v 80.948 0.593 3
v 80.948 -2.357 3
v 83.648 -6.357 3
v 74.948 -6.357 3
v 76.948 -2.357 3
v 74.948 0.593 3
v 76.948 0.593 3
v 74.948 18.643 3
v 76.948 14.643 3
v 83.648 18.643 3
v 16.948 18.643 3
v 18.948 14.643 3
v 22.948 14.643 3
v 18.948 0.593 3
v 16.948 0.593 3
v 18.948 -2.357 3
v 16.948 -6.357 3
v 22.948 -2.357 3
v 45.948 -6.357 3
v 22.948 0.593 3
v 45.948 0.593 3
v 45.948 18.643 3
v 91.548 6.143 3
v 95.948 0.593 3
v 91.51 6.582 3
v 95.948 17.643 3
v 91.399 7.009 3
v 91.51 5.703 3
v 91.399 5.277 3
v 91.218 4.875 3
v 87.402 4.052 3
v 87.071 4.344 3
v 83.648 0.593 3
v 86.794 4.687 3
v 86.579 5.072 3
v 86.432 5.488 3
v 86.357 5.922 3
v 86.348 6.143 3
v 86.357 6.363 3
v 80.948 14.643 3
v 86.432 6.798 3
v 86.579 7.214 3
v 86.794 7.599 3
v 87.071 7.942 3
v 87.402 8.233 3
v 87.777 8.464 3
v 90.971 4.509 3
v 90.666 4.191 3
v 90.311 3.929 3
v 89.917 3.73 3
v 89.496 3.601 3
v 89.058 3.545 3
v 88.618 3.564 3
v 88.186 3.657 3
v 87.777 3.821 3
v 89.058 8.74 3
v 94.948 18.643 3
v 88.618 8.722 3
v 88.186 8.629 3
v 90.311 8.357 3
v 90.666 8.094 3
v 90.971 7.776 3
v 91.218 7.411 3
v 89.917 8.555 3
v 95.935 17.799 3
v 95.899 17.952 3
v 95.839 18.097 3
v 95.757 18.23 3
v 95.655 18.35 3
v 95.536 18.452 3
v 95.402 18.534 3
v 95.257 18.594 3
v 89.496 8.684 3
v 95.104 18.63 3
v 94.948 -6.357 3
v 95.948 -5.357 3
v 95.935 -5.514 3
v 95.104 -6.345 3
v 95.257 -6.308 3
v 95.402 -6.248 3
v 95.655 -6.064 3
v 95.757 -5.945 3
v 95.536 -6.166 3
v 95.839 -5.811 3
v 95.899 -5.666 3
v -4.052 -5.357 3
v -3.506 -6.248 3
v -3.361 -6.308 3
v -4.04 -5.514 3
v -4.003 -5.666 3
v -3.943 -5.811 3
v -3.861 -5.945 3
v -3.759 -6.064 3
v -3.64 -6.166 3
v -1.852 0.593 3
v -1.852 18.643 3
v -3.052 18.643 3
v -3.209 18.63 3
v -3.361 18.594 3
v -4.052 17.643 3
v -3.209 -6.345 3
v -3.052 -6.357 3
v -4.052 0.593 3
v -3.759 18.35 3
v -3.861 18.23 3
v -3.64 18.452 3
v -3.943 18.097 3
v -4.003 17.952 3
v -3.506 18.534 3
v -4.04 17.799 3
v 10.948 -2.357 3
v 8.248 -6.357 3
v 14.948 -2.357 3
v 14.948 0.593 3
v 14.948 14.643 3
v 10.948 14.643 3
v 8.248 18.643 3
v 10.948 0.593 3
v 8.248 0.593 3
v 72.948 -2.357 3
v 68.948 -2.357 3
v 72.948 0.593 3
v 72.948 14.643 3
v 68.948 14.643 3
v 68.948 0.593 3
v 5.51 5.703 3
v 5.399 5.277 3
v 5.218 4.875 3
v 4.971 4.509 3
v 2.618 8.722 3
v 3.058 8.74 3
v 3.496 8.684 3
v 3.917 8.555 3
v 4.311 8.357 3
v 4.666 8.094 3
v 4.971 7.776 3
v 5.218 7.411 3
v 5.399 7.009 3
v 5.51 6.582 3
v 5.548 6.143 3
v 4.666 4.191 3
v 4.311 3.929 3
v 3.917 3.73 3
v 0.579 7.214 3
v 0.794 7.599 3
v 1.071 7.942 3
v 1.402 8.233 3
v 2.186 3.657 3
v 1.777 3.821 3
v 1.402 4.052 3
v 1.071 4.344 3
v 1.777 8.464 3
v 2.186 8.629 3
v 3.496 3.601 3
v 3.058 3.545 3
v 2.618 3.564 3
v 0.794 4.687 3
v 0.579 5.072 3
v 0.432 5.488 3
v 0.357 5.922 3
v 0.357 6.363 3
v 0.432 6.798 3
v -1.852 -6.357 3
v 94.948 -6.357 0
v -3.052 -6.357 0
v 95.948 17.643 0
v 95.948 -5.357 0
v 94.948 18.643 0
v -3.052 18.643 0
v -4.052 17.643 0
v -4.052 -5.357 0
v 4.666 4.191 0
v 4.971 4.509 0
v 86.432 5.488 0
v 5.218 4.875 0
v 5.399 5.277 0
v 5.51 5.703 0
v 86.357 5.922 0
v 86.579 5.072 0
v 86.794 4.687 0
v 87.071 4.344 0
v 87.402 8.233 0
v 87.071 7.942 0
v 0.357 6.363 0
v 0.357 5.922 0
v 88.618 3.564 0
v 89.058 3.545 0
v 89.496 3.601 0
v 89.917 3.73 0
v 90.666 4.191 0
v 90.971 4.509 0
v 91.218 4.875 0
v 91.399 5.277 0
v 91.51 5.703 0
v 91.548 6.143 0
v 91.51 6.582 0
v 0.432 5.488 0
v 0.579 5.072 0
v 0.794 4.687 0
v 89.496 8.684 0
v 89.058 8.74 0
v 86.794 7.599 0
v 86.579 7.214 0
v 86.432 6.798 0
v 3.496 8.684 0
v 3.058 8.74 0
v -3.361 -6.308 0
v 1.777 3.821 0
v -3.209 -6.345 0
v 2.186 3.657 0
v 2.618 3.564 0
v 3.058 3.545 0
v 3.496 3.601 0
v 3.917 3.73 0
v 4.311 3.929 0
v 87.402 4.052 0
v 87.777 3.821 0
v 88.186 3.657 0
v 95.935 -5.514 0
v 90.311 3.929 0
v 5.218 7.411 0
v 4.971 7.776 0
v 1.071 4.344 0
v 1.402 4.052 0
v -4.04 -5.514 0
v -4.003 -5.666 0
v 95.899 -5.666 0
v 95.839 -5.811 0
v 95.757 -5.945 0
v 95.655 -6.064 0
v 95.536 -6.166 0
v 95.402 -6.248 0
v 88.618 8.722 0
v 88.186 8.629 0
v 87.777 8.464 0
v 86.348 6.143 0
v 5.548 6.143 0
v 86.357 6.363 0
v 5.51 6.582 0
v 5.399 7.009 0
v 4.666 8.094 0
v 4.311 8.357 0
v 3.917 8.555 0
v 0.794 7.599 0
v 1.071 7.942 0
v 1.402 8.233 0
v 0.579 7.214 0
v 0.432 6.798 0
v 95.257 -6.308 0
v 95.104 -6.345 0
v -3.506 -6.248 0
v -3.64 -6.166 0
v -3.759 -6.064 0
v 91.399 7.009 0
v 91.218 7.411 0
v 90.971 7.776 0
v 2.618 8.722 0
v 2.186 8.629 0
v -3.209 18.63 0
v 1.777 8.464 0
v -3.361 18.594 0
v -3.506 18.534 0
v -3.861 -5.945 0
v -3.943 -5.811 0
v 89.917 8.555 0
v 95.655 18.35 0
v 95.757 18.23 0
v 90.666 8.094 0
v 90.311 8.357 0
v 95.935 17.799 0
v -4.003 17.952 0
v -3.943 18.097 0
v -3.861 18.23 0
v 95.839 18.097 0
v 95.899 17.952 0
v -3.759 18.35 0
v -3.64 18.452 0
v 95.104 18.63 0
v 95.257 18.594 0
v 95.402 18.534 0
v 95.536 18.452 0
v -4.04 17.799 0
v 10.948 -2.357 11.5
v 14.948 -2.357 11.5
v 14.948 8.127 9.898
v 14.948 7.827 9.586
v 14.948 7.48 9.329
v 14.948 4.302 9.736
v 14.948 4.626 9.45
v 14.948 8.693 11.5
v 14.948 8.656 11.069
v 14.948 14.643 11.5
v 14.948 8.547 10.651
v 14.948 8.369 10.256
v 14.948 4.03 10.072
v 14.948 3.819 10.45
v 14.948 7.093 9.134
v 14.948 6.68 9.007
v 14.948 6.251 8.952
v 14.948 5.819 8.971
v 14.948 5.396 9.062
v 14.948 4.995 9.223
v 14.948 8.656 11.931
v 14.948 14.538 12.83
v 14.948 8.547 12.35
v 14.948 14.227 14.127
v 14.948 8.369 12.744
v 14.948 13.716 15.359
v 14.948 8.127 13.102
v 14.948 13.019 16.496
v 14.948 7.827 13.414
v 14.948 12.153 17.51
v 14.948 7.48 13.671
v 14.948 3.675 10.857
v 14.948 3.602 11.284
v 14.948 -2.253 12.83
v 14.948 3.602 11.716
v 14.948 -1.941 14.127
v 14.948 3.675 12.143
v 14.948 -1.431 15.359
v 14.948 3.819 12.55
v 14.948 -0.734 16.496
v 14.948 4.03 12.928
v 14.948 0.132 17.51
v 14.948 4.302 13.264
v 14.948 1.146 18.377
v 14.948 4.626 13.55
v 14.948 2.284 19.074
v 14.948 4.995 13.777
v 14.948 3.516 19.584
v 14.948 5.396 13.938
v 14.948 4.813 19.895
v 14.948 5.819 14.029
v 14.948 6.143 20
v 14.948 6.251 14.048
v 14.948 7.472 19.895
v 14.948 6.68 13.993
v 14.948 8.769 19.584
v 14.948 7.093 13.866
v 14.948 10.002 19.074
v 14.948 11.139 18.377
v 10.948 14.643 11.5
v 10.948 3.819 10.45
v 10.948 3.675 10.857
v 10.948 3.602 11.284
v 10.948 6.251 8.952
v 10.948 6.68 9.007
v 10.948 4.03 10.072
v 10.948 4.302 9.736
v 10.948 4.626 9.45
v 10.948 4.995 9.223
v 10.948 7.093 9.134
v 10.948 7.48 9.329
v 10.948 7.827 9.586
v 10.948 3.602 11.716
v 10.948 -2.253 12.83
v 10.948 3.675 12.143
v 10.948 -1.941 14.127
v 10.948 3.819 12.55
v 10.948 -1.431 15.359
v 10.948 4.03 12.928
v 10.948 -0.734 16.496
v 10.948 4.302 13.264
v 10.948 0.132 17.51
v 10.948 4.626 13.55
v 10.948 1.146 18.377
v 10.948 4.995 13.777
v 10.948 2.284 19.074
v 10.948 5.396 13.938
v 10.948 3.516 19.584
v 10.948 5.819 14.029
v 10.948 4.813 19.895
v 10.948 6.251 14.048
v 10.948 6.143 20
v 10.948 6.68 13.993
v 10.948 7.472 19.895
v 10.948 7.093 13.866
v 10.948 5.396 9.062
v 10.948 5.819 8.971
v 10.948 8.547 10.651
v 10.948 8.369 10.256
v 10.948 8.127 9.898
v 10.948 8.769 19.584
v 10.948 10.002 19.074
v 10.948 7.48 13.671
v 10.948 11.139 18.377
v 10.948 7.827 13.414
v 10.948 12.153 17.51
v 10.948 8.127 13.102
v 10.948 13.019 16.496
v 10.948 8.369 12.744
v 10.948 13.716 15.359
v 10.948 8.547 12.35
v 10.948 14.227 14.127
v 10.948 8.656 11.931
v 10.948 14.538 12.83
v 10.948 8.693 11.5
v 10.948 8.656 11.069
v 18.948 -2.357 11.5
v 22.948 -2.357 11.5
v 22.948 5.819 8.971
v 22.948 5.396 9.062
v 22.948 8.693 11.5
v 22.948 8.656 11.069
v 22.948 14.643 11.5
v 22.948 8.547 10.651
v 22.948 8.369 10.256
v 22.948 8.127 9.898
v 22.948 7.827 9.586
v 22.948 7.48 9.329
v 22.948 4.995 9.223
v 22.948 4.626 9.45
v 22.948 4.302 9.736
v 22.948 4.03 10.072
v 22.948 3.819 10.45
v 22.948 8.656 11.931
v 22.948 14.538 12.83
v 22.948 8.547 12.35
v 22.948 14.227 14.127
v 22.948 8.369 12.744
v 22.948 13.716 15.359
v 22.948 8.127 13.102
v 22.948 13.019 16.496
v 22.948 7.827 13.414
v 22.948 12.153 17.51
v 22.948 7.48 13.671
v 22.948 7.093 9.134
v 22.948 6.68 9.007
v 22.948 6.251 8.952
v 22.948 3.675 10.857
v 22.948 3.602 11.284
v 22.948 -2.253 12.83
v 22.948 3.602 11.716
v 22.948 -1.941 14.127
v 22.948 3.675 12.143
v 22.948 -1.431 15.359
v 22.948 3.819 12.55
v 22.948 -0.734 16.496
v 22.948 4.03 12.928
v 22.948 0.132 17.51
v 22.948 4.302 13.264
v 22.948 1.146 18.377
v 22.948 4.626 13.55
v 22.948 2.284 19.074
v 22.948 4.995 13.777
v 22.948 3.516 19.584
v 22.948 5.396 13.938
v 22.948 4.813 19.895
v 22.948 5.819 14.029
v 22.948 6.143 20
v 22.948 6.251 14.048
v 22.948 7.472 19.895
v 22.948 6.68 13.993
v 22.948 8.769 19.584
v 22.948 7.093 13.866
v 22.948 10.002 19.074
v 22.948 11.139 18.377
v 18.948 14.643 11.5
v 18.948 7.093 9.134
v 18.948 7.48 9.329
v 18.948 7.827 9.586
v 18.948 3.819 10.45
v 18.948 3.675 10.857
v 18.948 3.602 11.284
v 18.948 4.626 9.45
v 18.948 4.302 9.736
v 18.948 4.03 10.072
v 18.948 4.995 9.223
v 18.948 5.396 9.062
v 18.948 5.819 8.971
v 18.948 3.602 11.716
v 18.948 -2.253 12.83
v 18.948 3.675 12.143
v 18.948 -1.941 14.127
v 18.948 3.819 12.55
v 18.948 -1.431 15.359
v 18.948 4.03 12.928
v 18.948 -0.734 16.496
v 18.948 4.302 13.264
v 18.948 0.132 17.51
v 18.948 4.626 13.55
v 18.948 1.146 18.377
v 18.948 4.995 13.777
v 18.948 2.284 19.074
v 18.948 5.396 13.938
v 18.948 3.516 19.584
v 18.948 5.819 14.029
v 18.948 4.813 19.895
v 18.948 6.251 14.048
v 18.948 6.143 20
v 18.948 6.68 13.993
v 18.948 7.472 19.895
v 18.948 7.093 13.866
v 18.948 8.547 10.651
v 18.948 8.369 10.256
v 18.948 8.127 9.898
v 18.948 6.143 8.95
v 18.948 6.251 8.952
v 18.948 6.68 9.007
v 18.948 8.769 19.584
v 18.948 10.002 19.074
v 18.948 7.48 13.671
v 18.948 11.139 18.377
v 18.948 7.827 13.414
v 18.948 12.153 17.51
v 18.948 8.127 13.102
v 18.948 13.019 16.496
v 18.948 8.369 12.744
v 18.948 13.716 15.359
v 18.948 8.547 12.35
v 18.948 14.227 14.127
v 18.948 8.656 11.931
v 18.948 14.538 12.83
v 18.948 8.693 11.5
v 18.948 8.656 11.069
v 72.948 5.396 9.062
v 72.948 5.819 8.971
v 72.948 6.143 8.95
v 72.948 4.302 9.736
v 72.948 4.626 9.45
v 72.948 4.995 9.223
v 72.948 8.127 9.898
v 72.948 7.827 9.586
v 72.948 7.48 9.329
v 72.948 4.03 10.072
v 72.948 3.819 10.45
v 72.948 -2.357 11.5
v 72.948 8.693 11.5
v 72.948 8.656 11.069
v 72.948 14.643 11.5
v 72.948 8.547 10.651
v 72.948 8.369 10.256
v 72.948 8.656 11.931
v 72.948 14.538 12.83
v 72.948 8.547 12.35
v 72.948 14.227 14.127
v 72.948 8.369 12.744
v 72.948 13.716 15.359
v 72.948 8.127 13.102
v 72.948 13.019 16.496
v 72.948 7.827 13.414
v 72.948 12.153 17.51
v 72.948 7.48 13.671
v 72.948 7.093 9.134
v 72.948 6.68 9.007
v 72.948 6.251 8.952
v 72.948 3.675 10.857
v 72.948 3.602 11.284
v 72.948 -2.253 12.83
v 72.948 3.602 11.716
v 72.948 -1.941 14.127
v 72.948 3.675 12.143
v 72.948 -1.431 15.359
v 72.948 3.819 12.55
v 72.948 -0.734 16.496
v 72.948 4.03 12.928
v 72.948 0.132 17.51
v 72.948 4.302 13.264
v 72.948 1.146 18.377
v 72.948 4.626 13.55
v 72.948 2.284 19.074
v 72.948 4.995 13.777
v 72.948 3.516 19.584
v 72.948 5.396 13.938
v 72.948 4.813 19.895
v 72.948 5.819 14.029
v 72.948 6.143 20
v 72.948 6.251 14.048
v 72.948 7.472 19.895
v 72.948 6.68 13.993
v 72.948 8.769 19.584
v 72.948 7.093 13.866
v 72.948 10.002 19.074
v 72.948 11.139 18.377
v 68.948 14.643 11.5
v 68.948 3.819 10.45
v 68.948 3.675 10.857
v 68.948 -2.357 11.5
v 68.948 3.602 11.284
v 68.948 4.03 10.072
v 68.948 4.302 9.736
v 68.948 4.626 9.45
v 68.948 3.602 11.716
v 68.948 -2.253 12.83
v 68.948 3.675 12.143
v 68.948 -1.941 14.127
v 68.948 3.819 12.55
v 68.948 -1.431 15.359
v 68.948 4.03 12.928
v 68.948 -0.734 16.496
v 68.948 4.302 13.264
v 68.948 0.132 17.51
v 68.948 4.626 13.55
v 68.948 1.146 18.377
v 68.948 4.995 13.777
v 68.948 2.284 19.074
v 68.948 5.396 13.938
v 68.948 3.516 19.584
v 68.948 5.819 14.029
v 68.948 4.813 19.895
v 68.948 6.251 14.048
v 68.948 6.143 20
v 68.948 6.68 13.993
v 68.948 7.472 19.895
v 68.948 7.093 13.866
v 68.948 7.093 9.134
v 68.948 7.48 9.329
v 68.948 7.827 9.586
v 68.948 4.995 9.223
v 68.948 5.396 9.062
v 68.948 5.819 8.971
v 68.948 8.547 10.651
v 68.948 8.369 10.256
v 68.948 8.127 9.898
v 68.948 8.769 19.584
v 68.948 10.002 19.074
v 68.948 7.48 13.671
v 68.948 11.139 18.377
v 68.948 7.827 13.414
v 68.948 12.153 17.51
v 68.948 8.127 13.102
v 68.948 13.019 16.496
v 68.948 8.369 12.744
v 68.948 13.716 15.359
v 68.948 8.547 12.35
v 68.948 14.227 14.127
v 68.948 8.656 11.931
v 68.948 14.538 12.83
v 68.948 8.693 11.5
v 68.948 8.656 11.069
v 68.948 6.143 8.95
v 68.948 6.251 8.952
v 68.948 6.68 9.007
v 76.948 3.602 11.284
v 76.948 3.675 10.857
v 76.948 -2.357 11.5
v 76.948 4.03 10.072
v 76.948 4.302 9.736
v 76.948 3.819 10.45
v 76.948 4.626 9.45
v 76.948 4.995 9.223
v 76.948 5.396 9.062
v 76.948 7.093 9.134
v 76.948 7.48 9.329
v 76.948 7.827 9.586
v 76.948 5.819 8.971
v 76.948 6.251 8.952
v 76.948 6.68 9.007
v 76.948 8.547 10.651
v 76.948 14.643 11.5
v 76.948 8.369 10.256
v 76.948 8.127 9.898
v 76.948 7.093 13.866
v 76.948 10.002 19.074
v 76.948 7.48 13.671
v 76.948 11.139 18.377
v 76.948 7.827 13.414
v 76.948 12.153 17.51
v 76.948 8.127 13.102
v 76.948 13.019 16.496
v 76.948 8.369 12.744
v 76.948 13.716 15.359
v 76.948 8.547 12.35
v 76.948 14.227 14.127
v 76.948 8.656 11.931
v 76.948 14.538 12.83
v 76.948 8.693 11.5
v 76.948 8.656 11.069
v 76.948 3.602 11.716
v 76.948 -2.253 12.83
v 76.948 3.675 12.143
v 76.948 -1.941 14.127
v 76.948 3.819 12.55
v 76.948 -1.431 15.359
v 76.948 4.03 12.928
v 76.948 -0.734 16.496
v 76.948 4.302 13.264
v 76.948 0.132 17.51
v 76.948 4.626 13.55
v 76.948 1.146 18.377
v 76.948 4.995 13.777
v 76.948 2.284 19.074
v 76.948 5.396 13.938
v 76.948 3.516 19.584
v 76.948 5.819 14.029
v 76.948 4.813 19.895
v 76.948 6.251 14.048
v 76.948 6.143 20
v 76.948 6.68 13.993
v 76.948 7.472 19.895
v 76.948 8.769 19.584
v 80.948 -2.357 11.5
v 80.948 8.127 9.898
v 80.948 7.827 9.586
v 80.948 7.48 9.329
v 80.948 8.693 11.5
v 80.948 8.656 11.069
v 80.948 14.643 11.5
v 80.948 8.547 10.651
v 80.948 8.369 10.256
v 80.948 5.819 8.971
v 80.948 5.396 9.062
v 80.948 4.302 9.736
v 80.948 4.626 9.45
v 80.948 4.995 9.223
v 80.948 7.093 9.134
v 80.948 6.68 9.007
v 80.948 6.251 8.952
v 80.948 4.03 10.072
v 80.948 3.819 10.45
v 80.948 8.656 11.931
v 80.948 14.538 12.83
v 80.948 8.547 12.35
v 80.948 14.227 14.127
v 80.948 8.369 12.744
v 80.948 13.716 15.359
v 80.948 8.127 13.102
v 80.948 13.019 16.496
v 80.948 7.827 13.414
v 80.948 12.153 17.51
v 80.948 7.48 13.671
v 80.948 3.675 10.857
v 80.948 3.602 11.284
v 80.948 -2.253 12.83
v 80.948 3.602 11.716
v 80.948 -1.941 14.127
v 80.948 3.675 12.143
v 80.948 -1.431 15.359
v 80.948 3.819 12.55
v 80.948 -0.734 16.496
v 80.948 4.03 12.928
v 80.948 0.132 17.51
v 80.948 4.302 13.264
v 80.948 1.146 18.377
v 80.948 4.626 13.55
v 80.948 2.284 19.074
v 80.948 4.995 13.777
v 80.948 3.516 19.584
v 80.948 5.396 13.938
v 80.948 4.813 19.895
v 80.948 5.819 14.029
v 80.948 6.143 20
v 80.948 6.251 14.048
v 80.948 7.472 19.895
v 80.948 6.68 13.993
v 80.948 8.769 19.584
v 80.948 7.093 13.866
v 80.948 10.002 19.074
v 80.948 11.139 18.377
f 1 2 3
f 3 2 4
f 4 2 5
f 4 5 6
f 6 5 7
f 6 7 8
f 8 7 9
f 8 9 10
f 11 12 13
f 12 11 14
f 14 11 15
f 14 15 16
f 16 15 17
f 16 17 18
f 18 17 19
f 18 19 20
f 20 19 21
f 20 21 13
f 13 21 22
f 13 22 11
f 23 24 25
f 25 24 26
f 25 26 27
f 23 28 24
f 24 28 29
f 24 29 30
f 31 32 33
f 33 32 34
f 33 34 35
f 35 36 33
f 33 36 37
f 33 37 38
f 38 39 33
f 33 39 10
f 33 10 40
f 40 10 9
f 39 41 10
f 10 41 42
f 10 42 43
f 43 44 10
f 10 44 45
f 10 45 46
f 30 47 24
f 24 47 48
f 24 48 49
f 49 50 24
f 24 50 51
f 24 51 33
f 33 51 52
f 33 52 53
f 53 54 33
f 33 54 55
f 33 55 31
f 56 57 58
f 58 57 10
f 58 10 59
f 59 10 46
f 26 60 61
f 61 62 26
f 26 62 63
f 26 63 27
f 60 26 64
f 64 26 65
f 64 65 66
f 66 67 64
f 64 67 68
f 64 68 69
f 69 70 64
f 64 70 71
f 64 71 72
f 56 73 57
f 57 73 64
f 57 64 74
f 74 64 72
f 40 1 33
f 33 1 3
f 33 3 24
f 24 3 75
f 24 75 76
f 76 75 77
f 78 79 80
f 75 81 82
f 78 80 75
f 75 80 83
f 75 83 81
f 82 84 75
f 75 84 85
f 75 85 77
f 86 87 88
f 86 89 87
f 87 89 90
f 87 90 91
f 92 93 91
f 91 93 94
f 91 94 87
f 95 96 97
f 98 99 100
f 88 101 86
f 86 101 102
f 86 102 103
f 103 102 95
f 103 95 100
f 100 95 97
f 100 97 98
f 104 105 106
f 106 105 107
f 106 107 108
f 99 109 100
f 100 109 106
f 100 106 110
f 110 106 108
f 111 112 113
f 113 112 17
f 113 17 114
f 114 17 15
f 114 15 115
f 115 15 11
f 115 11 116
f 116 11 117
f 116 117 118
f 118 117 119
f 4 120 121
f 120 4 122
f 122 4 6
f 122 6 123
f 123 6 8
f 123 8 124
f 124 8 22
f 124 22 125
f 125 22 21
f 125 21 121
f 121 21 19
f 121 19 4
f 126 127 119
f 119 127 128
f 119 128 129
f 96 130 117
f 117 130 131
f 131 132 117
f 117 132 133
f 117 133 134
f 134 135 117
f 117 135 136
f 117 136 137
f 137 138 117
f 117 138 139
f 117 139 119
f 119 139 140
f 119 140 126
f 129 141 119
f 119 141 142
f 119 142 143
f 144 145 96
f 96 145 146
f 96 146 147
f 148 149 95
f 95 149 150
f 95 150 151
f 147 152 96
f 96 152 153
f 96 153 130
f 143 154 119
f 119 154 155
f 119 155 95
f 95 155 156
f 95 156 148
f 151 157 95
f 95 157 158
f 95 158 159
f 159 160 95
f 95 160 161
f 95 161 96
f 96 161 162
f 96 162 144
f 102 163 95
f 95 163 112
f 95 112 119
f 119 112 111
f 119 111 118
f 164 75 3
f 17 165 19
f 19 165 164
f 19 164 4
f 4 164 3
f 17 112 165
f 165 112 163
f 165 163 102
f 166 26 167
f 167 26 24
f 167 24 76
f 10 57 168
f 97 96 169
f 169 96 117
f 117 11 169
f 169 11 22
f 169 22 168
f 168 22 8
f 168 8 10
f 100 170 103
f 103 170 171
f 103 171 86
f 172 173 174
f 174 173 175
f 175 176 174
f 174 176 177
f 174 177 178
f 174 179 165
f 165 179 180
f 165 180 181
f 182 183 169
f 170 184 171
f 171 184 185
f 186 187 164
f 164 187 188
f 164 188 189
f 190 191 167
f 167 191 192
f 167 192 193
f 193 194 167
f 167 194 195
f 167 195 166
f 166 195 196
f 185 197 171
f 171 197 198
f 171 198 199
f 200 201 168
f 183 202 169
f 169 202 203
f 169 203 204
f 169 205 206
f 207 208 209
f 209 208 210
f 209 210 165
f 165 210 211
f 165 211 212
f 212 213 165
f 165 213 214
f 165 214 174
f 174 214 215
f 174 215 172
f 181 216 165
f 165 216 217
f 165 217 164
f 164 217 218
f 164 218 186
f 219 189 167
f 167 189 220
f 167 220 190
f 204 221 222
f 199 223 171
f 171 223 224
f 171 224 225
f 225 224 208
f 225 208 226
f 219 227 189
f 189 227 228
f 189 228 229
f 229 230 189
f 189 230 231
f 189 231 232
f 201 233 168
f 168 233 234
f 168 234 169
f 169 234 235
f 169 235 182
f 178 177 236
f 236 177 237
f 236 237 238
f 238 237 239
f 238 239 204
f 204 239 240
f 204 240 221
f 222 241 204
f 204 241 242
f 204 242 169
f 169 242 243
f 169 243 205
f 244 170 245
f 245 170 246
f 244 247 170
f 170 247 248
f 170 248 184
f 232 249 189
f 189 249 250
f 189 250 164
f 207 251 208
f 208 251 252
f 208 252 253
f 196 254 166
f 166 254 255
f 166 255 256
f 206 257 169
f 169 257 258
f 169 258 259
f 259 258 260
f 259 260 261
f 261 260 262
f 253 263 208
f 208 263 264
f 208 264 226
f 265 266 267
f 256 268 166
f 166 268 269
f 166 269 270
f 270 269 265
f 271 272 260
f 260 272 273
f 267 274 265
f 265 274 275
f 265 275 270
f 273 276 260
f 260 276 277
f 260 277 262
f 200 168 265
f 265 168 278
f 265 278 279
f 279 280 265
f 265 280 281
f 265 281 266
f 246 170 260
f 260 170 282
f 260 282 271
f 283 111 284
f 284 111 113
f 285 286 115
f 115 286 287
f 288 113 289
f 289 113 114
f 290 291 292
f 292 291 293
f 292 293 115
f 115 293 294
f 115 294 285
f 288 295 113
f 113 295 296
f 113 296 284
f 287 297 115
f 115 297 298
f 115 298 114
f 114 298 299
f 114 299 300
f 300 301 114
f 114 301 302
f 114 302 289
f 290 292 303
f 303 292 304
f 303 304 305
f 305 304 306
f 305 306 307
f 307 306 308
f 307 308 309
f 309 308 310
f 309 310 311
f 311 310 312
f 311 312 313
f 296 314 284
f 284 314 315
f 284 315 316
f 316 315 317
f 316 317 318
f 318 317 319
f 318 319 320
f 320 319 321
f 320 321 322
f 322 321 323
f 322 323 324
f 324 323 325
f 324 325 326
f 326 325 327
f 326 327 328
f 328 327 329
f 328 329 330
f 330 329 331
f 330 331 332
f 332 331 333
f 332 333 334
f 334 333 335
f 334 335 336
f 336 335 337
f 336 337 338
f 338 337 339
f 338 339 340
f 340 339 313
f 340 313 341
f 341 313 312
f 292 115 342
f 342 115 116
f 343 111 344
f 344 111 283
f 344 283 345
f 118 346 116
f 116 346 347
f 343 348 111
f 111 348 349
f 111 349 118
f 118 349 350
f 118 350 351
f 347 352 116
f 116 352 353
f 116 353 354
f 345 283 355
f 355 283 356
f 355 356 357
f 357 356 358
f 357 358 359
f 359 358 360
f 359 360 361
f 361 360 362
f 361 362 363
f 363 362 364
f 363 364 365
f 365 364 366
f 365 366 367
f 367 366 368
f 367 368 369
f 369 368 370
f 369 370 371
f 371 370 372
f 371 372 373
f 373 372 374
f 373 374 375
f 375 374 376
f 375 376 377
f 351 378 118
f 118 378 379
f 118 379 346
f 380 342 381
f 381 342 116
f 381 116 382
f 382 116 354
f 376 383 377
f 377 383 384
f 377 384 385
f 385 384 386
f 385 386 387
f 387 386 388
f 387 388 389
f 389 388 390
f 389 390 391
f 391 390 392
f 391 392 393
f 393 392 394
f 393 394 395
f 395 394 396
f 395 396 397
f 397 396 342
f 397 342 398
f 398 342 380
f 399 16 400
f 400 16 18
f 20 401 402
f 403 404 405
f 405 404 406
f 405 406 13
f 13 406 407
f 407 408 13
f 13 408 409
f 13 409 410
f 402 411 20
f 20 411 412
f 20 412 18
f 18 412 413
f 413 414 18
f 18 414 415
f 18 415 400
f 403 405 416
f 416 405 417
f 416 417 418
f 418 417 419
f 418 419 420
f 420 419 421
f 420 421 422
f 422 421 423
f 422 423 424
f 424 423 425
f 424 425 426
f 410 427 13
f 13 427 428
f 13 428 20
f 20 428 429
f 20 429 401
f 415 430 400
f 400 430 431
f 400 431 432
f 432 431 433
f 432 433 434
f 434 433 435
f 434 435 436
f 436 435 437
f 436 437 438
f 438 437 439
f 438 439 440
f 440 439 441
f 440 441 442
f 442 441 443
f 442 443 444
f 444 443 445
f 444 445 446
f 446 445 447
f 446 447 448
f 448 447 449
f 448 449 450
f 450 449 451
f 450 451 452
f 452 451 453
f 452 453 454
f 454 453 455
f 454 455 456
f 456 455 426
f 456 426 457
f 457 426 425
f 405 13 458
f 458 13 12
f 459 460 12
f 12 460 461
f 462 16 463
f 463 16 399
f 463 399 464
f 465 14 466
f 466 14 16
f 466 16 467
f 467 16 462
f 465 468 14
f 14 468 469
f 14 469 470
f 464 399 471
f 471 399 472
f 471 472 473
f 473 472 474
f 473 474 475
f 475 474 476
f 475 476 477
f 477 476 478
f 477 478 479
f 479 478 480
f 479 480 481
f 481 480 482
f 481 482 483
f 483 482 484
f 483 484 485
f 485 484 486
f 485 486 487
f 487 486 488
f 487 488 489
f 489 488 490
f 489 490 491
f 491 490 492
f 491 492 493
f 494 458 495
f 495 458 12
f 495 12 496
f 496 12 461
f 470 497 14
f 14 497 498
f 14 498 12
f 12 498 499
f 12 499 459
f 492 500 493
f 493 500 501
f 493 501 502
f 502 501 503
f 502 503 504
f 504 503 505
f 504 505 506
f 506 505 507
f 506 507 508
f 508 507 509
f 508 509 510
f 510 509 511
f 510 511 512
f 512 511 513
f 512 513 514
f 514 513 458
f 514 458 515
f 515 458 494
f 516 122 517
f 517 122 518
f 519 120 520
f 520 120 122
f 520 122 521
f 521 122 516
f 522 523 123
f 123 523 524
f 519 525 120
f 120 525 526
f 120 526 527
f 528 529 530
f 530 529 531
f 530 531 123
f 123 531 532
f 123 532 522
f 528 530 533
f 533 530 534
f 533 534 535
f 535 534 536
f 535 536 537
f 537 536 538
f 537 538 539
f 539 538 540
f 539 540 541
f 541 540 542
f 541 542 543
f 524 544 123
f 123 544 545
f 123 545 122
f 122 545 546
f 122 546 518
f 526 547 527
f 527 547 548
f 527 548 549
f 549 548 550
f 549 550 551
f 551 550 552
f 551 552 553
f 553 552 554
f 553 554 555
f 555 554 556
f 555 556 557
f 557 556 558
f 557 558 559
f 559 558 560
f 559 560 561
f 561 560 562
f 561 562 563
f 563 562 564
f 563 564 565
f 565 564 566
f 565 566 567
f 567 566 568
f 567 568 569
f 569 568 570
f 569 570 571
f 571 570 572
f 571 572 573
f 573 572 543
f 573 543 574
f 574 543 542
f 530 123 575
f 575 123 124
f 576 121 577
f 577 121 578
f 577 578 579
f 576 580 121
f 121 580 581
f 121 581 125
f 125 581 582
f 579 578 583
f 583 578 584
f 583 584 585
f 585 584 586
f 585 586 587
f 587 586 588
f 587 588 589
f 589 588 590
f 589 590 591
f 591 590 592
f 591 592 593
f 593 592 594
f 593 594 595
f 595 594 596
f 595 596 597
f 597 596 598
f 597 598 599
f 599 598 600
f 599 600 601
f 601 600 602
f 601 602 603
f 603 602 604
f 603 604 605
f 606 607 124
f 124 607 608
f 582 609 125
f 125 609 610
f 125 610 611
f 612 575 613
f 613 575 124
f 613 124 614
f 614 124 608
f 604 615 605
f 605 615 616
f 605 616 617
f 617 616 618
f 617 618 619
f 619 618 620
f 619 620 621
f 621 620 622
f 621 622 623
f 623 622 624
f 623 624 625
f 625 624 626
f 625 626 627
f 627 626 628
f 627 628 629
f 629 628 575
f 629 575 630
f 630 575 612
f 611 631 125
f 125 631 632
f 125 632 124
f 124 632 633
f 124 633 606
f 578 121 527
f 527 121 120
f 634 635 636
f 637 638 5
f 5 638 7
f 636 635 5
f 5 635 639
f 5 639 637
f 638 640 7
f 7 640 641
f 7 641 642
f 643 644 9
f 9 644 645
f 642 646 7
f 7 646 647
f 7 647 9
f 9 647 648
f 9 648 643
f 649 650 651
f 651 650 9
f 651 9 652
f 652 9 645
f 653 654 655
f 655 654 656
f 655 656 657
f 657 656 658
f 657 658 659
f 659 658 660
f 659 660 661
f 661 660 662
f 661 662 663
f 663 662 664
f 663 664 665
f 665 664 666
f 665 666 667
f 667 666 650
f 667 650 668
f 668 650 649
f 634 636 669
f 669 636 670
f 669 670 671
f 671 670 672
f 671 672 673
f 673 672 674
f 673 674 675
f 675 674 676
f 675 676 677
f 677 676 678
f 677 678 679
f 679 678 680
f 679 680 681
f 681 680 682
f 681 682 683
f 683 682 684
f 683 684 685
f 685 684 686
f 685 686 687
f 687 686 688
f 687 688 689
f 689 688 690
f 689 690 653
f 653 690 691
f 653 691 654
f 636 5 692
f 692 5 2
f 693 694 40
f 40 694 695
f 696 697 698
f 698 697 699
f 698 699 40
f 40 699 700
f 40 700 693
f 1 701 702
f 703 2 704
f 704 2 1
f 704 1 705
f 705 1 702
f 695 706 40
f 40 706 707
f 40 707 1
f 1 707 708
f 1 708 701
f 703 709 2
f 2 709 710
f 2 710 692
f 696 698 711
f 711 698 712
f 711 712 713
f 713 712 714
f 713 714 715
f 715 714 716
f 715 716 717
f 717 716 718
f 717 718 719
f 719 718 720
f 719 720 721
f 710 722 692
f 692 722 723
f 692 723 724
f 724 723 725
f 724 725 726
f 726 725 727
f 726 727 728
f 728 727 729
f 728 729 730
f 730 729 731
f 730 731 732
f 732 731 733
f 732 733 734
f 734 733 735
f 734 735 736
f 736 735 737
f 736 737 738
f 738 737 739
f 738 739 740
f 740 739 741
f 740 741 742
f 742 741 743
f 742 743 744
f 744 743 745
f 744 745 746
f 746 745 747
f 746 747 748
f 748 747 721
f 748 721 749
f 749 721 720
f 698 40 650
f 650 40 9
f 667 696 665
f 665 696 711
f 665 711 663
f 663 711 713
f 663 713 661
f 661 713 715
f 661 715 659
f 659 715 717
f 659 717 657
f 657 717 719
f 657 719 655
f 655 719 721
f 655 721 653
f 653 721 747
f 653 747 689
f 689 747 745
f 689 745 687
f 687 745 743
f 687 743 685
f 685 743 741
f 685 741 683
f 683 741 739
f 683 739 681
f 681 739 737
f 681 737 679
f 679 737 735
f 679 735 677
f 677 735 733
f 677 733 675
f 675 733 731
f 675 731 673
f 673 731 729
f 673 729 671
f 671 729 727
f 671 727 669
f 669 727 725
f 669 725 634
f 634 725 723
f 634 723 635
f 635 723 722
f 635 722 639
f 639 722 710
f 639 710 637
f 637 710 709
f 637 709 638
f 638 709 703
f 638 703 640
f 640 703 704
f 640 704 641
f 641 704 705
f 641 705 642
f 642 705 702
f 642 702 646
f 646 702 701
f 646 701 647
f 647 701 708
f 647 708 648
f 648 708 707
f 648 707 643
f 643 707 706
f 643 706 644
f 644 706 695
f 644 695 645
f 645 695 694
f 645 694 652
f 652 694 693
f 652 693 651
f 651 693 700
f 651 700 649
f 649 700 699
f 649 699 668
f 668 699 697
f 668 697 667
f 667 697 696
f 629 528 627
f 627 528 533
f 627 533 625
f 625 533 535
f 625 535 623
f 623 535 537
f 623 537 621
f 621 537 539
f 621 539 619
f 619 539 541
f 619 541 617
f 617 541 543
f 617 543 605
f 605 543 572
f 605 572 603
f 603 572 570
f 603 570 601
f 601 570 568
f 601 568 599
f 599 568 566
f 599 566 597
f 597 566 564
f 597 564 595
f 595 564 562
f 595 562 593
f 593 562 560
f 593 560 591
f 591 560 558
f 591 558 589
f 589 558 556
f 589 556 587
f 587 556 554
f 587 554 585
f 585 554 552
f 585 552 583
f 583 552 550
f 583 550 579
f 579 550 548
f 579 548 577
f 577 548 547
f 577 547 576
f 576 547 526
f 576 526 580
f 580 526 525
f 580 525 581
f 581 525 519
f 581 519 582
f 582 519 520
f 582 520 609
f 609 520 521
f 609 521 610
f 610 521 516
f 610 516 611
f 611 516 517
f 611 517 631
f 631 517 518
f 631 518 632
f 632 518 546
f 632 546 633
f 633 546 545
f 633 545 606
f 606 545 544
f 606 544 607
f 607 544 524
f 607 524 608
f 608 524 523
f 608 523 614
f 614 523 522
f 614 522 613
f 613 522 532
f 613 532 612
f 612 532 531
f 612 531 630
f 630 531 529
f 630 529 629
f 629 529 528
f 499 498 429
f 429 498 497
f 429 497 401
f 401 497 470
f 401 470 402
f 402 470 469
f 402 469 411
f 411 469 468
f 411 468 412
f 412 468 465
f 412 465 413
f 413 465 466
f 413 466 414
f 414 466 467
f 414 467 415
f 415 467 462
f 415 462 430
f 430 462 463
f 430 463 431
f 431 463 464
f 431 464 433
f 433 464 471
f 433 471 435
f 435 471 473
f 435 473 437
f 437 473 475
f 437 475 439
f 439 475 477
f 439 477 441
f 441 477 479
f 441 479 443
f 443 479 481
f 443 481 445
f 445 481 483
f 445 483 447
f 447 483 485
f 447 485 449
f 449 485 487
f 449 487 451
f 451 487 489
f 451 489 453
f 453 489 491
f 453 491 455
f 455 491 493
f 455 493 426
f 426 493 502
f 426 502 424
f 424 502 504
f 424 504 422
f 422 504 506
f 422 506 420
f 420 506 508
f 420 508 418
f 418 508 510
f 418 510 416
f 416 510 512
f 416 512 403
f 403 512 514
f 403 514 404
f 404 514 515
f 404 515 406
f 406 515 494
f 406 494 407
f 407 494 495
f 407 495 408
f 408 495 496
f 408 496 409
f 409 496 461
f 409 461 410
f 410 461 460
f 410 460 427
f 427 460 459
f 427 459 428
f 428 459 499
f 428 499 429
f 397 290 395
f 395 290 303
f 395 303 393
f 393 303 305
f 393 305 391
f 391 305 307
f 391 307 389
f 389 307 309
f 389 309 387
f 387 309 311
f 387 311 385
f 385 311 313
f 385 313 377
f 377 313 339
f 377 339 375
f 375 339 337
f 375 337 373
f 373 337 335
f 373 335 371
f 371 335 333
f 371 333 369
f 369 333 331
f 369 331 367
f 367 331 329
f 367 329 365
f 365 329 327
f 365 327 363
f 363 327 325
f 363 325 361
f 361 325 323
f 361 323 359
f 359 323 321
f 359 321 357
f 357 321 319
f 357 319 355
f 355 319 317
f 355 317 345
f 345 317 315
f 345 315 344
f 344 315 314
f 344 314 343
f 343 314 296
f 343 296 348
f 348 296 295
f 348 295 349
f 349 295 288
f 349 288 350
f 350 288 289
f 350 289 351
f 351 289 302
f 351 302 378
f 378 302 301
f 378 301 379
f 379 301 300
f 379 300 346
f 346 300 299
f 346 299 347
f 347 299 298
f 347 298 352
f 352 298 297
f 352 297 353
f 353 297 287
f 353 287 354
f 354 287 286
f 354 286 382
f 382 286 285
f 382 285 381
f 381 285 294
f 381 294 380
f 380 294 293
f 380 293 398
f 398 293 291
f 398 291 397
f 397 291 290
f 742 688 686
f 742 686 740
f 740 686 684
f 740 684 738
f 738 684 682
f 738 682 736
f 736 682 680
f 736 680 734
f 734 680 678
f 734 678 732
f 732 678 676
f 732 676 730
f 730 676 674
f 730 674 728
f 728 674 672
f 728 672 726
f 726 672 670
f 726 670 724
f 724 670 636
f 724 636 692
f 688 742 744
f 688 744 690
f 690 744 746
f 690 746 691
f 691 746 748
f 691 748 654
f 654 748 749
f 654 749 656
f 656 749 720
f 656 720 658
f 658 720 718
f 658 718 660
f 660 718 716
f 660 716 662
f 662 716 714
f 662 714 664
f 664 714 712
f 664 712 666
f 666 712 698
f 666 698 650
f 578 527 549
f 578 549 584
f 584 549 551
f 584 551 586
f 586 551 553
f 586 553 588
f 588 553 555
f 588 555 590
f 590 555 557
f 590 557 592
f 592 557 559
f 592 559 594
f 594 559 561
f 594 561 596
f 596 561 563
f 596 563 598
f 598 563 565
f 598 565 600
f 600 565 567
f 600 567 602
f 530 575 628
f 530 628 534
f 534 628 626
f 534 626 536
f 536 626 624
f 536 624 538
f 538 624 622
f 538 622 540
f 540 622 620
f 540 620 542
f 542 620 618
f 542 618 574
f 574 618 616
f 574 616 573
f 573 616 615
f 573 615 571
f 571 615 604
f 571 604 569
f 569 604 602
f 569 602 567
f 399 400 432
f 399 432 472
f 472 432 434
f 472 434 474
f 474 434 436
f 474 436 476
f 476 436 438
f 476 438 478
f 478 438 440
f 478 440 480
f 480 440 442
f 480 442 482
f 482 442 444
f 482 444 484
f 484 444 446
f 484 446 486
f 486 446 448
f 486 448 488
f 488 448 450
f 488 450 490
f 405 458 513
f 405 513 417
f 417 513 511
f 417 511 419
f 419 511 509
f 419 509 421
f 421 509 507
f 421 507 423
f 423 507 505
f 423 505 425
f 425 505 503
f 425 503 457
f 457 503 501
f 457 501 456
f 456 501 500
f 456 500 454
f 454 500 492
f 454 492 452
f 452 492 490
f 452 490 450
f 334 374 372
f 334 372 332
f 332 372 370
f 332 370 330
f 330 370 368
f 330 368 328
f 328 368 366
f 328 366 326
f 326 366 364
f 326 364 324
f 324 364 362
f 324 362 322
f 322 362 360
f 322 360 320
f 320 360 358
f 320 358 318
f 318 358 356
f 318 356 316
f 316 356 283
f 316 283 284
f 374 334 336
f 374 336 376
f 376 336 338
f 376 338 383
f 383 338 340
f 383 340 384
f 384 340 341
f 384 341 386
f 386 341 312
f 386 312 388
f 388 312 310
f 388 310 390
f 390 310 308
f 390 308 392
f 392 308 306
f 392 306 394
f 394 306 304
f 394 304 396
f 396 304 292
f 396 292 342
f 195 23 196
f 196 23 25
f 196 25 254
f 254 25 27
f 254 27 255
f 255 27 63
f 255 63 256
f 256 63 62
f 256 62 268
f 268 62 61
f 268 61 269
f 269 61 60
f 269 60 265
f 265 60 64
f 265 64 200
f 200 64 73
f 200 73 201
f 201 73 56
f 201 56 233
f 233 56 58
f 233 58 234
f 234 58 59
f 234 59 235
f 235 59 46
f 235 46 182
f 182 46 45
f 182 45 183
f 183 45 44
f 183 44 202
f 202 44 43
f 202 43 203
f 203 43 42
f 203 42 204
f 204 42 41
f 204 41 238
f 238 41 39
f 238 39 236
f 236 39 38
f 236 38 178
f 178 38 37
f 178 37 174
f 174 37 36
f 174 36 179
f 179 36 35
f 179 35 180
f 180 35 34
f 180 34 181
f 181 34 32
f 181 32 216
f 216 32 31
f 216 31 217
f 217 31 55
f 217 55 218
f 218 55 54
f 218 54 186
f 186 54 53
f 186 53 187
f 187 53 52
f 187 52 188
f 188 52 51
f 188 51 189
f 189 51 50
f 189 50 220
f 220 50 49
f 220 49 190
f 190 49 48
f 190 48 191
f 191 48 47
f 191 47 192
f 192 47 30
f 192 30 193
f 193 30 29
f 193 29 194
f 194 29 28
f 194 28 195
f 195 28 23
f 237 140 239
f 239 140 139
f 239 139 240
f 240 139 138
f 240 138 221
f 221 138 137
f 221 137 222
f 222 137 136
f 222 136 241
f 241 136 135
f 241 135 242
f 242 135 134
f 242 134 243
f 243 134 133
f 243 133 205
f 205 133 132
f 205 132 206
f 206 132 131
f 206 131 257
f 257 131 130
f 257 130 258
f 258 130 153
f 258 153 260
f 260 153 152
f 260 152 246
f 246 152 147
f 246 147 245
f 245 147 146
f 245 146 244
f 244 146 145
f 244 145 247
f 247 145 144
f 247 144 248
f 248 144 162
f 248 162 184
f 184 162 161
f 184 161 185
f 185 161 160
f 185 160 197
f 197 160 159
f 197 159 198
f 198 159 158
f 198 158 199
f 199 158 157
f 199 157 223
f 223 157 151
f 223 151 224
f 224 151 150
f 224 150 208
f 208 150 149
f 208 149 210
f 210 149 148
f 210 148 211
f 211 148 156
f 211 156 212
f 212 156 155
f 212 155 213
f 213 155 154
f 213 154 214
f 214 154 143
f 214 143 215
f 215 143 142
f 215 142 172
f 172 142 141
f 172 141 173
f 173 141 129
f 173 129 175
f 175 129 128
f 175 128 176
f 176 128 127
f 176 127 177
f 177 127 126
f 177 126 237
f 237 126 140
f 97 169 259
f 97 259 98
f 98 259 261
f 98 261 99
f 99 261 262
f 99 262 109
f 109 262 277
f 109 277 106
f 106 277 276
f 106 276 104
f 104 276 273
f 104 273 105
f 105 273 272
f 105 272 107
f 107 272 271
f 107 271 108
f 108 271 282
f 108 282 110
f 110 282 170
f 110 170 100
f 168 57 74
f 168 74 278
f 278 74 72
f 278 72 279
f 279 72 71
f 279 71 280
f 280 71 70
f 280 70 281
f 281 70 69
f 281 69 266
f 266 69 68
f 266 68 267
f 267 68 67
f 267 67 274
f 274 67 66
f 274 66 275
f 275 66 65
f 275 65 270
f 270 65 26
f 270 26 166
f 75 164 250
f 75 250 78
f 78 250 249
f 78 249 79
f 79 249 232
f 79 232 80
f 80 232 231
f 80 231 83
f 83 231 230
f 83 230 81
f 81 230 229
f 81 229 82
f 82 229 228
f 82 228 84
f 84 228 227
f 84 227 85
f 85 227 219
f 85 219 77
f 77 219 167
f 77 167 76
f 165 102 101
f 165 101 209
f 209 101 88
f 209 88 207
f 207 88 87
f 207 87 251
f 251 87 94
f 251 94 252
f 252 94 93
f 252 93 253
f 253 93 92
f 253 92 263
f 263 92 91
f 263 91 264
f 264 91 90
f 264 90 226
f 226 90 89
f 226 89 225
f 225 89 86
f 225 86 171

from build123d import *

# Parameters (mm, degrees)
SKIZZE1_W                            = 100
SKIZZE1_H                            = 25
AUFSATZ_LINEAR_AUSTRAGEN1_DEPTH      = 3
SKIZZE3_W                            = 4
SKIZZE3_H                            = 17
AUFSATZ_LINEAR_AUSTRAGEN2_DEPTH      = 17
SCHNITT_LINEAR_AUSTRAGEN1_DEPTH      = 78.95222289
SCHNITT_LINEAR_AUSTRAGEN1_DEPTH_BACK = 78.95222289
SKIZZE5_R                            = 2.55
VERRUNDUNG1_R                        = 8.5
SKIZZE6_R                            = 2.6
SCHNITT_LINEAR_AUSTRAGEN2_DEPTH      = 3
VERRUNDUNG2_R                        = 1


with BuildPart() as part:
    # Skizze1 → Aufsatz-Linear austragen1 (new body)
    with BuildSketch(Plane.XY):
        with Locations((45.947748482, 6.142667555)):
            Rectangle(SKIZZE1_W, SKIZZE1_H)
    extrude(amount=AUFSATZ_LINEAR_AUSTRAGEN1_DEPTH)

    # Skizze3 → Aufsatz-Linear austragen2 (add)
    with BuildSketch(Plane.XY.offset(3)):
        with Locations((12.947748482, 6.142667555)):
            Rectangle(SKIZZE3_W, SKIZZE3_H)
        with Locations((20.947748482, 6.142667555)):
            Rectangle(SKIZZE3_W, SKIZZE3_H)
        with Locations((78.947748482, 6.142667555)):
            Rectangle(SKIZZE3_W, SKIZZE3_H)
        with Locations((70.947748482, 6.142667555)):
            Rectangle(SKIZZE3_W, SKIZZE3_H)
    extrude(amount=AUFSATZ_LINEAR_AUSTRAGEN2_DEPTH)

    # Skizze5 → Schnitt-Linear austragen1 (cut, two sides: drawn at the far end of the back side and taken through both)
    with BuildSketch(Plane(origin=(22.947748482, 0, 0), x_dir=(0, 0, -1), z_dir=(1, 0, 0)).offset(-SCHNITT_LINEAR_AUSTRAGEN1_DEPTH_BACK)):
        with Locations(Location((-11.5, 6.142667555, 0), (0, 0, 90))):
            Circle(SKIZZE5_R)
    extrude(amount=SCHNITT_LINEAR_AUSTRAGEN1_DEPTH + SCHNITT_LINEAR_AUSTRAGEN1_DEPTH_BACK, mode=Mode.SUBTRACT)

    # Verrundung1
    verrundung1_edges = [part.edges().sort_by_distance(p)[0] for p in [
        (20.947748482, 14.642667555, 20),
        (12.947748482, 14.642667555, 20),
        (12.947748482, -2.357332445, 20),
        (20.947748482, -2.357332445, 20),
        (78.947748482, 14.642667555, 20),
        (70.947748482, 14.642667555, 20),
        (70.947748482, -2.357332445, 20),
        (78.947748482, -2.357332445, 20),
    ]]
    fillet(verrundung1_edges, radius=VERRUNDUNG1_R - 0.0001)  # a hair under: the kernel refuses the full size

    # Skizze6 → Schnitt-Linear austragen2 (cut)
    with BuildSketch(Plane.XY.offset(3)):
        with Locations((2.947748482, 6.142667555)):
            Circle(SKIZZE6_R)
        with Locations(Location((88.947748482, 6.142667555, 0), (0, 0, 180))):
            Circle(SKIZZE6_R)
    extrude(amount=-SCHNITT_LINEAR_AUSTRAGEN2_DEPTH, mode=Mode.SUBTRACT)

    # Verrundung2
    verrundung2_edges = [part.edges().sort_by_distance(p)[0] for p in [
        (95.947748482, -6.357332445, 1.5),
        (95.947748482, 18.642667555, 1.5),
        (-4.052251518, 18.642667555, 1.5),
        (-4.052251518, -6.357332445, 1.5),
    ]]
    fillet(verrundung2_edges, radius=VERRUNDUNG2_R)


solid = part.part
